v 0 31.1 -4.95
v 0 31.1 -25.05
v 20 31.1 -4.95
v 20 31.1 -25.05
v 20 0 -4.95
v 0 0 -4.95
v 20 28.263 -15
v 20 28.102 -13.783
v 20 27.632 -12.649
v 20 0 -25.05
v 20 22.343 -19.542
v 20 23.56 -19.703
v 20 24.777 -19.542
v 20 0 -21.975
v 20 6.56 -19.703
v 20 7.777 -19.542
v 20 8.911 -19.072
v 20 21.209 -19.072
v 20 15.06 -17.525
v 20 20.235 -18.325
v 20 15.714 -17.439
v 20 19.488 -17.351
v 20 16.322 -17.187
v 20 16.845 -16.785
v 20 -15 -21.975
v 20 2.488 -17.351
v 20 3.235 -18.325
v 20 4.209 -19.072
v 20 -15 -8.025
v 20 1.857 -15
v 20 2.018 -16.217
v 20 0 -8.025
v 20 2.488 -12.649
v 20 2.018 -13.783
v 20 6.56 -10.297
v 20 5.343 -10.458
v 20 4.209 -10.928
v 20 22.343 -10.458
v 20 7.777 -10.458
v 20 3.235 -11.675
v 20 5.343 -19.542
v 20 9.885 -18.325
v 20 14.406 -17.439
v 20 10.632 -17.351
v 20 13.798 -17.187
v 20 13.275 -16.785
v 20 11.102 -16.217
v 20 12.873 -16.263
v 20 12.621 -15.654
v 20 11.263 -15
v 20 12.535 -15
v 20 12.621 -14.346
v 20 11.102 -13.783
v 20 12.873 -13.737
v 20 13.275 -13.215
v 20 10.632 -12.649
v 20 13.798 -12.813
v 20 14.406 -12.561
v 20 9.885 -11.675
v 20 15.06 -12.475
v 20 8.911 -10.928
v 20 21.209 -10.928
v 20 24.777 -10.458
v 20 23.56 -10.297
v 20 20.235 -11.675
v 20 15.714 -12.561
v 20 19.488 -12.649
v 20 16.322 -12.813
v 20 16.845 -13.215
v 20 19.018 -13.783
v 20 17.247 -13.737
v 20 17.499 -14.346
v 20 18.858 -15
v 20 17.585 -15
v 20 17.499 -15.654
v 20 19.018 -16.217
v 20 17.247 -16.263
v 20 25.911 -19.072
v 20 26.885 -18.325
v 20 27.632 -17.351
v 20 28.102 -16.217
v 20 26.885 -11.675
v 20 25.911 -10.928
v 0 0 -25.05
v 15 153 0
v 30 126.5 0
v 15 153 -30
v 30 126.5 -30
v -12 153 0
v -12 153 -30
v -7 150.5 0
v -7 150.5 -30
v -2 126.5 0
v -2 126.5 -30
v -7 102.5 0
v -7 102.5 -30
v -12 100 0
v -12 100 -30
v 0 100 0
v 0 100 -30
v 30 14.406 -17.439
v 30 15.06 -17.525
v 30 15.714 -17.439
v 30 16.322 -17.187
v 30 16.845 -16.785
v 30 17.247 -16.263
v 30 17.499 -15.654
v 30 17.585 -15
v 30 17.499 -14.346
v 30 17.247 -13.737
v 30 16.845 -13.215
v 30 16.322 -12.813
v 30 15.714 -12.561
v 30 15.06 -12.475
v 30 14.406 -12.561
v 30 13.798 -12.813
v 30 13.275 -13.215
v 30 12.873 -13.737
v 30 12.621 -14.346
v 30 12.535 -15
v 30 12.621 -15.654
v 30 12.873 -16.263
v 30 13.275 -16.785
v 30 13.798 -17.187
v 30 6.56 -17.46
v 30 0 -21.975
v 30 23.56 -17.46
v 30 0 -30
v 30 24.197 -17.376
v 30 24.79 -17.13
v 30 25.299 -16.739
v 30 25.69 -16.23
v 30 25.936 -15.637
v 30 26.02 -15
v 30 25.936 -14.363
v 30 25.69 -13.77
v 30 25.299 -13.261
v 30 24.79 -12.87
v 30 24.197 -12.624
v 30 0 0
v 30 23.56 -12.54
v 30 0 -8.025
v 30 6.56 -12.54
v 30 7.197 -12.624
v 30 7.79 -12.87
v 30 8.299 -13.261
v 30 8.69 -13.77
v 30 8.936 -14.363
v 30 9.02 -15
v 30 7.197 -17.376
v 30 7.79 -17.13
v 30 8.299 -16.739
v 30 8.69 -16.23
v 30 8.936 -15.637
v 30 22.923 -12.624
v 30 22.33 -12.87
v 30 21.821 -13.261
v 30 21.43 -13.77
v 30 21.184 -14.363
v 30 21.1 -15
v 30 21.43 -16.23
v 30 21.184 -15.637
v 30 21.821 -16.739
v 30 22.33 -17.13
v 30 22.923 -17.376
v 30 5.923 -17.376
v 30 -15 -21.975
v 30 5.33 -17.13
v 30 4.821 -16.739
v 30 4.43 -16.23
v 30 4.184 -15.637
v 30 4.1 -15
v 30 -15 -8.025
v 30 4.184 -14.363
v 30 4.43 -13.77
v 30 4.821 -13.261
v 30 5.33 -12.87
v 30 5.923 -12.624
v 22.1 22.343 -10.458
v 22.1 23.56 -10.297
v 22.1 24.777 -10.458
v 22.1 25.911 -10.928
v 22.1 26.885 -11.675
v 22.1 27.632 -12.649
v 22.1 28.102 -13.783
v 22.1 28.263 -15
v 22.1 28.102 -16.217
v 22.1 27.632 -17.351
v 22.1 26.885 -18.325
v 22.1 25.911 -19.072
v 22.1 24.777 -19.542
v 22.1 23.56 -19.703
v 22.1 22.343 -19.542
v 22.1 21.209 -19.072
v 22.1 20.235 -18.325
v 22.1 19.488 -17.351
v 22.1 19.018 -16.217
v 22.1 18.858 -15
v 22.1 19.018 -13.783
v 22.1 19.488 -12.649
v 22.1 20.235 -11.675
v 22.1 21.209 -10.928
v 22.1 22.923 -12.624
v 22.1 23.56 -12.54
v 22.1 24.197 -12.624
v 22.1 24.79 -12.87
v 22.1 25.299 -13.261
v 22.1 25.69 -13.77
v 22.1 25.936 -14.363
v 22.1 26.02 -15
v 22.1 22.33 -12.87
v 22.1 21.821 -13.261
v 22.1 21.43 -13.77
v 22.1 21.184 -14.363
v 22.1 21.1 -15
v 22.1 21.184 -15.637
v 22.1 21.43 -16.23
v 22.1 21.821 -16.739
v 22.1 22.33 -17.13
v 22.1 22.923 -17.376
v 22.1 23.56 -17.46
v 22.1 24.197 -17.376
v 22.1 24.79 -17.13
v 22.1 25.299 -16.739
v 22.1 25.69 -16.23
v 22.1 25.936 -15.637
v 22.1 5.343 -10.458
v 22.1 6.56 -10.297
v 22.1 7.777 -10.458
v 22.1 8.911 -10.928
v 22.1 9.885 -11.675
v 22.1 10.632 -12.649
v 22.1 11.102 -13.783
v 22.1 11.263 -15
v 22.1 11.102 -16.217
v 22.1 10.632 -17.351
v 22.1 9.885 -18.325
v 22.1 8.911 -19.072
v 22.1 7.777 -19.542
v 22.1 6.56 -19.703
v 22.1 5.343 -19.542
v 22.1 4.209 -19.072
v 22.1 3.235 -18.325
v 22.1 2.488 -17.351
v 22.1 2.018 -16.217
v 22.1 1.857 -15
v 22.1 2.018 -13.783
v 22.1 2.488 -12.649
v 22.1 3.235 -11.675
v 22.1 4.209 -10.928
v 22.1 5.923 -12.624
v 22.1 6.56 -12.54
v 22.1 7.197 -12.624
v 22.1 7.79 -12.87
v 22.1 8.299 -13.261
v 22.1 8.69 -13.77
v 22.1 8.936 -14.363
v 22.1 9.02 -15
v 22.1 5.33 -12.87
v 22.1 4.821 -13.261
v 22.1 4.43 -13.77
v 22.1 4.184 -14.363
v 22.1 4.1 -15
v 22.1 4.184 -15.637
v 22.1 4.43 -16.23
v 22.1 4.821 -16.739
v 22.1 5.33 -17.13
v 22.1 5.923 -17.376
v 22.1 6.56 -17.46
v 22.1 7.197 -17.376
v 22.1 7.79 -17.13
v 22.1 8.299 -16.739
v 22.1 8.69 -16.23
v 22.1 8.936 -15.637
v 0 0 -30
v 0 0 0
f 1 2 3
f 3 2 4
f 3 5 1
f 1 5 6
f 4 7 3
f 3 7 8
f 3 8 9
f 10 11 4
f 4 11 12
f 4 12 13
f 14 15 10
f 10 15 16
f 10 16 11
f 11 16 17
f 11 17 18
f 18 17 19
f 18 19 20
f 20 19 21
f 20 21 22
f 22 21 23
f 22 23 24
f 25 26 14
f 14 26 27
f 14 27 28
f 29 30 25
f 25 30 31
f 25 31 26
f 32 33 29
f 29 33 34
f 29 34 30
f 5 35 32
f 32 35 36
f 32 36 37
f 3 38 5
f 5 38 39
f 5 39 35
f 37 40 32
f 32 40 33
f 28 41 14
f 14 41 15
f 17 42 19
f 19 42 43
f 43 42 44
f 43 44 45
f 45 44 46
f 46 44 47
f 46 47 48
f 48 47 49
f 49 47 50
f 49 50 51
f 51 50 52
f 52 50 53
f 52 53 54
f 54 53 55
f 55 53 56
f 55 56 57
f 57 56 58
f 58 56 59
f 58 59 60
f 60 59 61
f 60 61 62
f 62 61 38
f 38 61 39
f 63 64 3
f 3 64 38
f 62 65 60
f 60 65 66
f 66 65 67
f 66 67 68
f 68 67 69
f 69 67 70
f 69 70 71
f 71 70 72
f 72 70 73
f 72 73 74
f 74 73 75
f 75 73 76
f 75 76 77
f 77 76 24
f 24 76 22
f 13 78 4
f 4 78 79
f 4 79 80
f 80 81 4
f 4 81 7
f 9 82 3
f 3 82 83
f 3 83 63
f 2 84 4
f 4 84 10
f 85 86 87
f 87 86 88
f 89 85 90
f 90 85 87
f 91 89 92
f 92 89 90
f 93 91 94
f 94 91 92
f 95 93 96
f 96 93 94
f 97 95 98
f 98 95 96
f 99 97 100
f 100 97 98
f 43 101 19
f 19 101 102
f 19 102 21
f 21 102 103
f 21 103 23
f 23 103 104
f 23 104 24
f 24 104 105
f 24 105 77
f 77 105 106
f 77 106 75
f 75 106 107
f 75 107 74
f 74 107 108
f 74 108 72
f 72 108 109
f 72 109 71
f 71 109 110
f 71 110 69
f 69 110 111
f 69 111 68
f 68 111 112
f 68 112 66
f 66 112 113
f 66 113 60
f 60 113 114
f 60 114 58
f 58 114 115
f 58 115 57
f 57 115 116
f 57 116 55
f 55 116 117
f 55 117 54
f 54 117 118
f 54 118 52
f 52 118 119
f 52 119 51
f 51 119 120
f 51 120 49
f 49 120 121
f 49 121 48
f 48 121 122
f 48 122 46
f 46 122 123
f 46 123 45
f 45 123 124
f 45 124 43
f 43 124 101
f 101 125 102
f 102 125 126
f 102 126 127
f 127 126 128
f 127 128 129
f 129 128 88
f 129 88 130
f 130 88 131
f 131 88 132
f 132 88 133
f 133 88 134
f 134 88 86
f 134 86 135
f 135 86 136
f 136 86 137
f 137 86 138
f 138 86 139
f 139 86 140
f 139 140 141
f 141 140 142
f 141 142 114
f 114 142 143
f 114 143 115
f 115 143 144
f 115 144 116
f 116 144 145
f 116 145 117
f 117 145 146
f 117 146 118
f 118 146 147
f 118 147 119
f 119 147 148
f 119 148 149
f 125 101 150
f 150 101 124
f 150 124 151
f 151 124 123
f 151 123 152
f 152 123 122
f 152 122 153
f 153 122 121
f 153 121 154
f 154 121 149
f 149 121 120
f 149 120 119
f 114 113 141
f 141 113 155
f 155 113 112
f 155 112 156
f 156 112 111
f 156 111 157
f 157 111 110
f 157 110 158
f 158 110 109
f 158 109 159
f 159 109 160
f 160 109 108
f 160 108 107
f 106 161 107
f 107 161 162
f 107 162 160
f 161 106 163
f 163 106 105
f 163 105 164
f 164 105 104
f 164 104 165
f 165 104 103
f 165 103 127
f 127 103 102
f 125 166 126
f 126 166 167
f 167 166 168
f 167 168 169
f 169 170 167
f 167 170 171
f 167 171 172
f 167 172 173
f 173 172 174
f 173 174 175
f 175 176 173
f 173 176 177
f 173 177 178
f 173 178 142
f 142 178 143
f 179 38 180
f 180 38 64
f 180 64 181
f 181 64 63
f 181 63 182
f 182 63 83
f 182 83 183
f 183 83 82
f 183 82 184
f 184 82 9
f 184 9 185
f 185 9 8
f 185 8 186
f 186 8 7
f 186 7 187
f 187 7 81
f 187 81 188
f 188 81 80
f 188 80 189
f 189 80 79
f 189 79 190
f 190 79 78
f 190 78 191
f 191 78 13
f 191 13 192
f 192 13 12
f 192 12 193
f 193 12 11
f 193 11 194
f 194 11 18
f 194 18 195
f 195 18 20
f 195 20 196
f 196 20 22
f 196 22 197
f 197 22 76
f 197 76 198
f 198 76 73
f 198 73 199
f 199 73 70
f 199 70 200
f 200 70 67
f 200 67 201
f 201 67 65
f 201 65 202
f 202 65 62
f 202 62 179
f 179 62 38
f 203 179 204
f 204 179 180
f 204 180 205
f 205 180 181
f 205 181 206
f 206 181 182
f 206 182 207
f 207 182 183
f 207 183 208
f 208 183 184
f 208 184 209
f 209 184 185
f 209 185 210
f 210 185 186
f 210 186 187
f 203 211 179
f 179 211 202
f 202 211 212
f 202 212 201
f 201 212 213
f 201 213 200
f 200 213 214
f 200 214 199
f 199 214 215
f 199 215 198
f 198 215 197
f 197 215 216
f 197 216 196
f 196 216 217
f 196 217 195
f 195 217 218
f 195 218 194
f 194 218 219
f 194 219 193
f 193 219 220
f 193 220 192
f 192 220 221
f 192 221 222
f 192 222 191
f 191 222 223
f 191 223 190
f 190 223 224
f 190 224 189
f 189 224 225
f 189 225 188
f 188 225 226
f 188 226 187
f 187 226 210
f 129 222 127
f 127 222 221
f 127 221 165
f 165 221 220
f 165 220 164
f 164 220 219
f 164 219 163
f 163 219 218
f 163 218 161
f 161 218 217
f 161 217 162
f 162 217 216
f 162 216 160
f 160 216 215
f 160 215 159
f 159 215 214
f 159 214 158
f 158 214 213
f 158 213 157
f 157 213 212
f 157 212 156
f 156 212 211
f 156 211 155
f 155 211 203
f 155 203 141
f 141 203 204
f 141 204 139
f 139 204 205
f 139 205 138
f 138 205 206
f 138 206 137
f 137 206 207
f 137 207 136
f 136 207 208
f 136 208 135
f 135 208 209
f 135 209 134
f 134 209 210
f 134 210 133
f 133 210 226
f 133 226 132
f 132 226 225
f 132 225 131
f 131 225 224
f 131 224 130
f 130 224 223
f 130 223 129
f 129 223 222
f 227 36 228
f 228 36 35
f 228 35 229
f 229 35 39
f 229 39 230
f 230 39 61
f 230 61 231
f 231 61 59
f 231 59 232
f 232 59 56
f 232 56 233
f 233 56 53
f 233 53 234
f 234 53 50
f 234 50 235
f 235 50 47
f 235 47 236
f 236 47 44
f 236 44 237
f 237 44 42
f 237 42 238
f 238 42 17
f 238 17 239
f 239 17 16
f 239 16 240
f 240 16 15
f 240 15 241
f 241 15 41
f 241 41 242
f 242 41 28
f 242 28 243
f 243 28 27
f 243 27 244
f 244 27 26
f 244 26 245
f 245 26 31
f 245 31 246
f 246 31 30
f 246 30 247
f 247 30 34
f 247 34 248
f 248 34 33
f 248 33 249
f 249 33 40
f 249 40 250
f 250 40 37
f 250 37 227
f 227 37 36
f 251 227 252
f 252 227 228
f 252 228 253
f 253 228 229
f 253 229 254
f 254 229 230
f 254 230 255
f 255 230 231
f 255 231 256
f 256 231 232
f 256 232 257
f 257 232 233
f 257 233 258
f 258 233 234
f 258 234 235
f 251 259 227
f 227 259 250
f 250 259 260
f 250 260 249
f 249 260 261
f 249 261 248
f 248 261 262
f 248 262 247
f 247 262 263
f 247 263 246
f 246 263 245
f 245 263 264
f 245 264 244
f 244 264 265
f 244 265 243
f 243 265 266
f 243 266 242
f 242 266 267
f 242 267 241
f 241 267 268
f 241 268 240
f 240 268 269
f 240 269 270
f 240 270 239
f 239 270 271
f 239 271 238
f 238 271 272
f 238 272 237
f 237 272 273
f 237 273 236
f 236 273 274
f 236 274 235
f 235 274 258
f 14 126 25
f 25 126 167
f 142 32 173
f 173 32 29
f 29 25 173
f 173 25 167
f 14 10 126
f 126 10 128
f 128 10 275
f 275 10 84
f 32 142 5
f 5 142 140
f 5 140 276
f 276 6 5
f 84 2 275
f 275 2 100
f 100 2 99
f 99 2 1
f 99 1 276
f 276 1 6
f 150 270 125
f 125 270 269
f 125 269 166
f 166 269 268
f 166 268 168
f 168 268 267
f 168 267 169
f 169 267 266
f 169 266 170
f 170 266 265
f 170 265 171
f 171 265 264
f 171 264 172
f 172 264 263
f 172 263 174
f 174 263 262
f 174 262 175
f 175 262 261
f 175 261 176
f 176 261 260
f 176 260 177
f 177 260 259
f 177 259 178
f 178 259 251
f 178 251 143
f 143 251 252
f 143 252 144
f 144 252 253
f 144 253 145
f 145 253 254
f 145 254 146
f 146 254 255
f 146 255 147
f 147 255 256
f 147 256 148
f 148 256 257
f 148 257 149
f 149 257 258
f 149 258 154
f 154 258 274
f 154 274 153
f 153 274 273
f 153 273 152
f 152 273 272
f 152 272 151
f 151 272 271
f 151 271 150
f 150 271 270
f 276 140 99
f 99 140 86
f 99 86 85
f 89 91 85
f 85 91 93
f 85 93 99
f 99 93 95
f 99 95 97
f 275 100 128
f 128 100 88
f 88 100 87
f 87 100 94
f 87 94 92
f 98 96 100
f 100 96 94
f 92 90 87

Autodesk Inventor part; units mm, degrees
ref_plane "YZ Plane" through (0, 0, 0) normal (1, 0, 0) x (0, 1, 0)
ref_plane "XZ Plane" through (0, 0, 0) normal (0, 1, 0) x (-1, 0, 0)
ref_plane "XY Plane" through (0, 0, 0) normal (0, 0, 1) x (1, 0, 0)
sketch "Sketch1" plane through (0, 0, 0) normal (0, 0, 1) x (1, 0, 0)
  line L0 (0, 0) -> (25, 0)
  line L1 (25, 0) -> (25, 40)
  line L2 (25, 40) -> (0, 40)
  line L3 (0, 40) -> (0, 0)
  dimension "d1" = 25
  dimension "d2" = 40
  dimension "d3" = 25
extrude "Extrusion1" add sketch "Sketch1" against normal blind 30
sketch "Sketch2" plane through (25, 0, 0) normal (1, 0, 0) x (0, 0, -1)
  line L0 (0, 0) -> (30, 0) projected
  circle A0 centre (15, 6.56) radius 2.46
extrude "Extrusion2" cut sketch "Sketch2" against normal blind 30
sketch "Sketch3" plane through (0, 0, 0) normal (-1, 0, 0) x (0, 0, 1)
  line L0 (0, 0) -> (-30, 0) projected
  line L1 (-25.05, 0) -> (-4.95, 0)
  line L2 (-4.95, 0) -> (-4.95, 33.12)
  line L3 (-4.95, 33.12) -> (-25.05, 33.12)
  line L4 (-25.05, 33.12) -> (-25.05, 0)
  dimension "d11" = 20.1
extrude "Extrusion3" cut sketch "Sketch3" against normal blind 20
sketch "Sketch4" plane through (0, 0, 0) normal (0, -1, 0) x (1, 0, 0)
  line L0 (20, -4.95) -> (20, -25.05) projected
  line L1 (20, -15) -> (25, -15)
  line L2 (25, 0) -> (25, -30) projected
  line L3 (20, -8.025) -> (25, -8.025)
  line L4 (25, -8.025) -> (25, -21.975)
  line L5 (25, -21.975) -> (20, -21.975)
  line L6 (20, -21.975) -> (20, -8.025)
  line L7 (20, -8.025) -> (25, -21.975) construction
  line L8 (25, -8.025) -> (20, -21.975) construction
  line L9 (25, -12.54) -> (25, -17.46) projected
  point P0 (0, 0)
  point P1 (22.5, -15)
  dimension "d14" = 13.95
extrude "Extrusion4" add sketch "Sketch4" along normal blind 15
sketch "Sketch5" plane through (20, 0, 0) normal (-1, 0, 0) x (0, 0, 1)
  circle A0 centre (-15, 6.56) radius 2.46 projected
  circle A1 centre (-15, 6.56) radius 4.7025
  circle A2 centre (-15, 6.56) radius 2.46 projected
  circle A3 centre (-15, 6.56) radius 2.46
  point P0 (0, 0)
  dimension "d17" = 9.405
extrude "Extrusion5" cut sketch "Sketch5" against normal blind 2.1
sketch "Sketch6" plane through (25, 0, 0) normal (1, 0, 0) x (0, 0, -1)
  circle A0 centre (15, 6.56) radius 4.7025 projected
  line L0 (15, 6.56) -> (15, 23.56)
  circle A1 centre (15, 23.56) radius 2.46
  point P0 (0, 0)
  dimension "d20" = 17
  dimension "d21" = 4.92
extrude "Extrusion6" cut sketch "Sketch6" against normal blind 10 contours A1
sketch "Sketch7" plane through (20, 0, 0) normal (-1, 0, 0) x (0, 0, 1)
  circle A0 centre (-15, 23.56) radius 2.46 projected
  circle A1 centre (-15, 23.56) radius 4.7025
  point P0 (0, 0)
  dimension "d24" = 9.405
extrude "Extrusion7" cut sketch "Sketch7" against normal blind 2.1
sketch "Sketch9" plane through (25, 0, 0) normal (1, 0, 0) x (0, 0, -1)
  circle A0 centre (15, 6.56) radius 2.46 projected
  circle A1 centre (15, 6.56) radius 2.46
  circle A2 centre (15, 23.56) radius 2.46 projected
  circle A3 centre (15, 23.56) radius 2.46
  line L0 (30, 40) -> (30, 0) projected
  line L1 (30, 0) -> (30, 40)
  line L2 (30, 40) -> (0, 40)
  line L3 (0, 40) -> (0, 0)
  line L4 (0, 0) -> (8.025, 0) projected
  line L5 (21.975, 0) -> (21.975, -15)
  line L6 (21.975, -15) -> (8.025, -15)
  line L7 (8.025, -15) -> (8.025, 0)
  line L8 (0, 0) -> (8.025, 0)
  line L9 (21.975, 0) -> (30, 0)
extrude "Extrusion8" add sketch "Sketch9" along normal blind 5
sketch "Sketch10" plane through (0, 40, 0) normal (0, 1, 0) x (1, 0, 0)
  line L0 (0, 30) -> (30, 30) projected
  line L1 (30, 0) -> (0, 0) projected
  line L2 (0, 30) -> (30, 30)
  line L3 (30, 30) -> (30, 0)
  line L4 (30, 0) -> (0, 0)
  line L5 (0, 0) -> (0, 30)
extrude "Extrusion9" add sketch "Sketch10" along normal blind 30
sketch "Sketch12" plane through (30, 0, 0) normal (1, 0, 0) x (0, 0, -1)
  circle A0 centre (15, 6.56) radius 2.46 projected
  line L0 (15, 6.56) -> (15, 15.06)
  circle A1 centre (15, 15.06) radius 2.525
  point P0 (0, 0)
  dimension "d31" = 8.5
  dimension "d33" = 5.05
extrude "Extrusion10" cut sketch "Sketch12" against normal blind 30 contours A1
sketch "Sketch14" plane through (0, 0, 0) normal (0, 0, 1) x (1, 0, 0)
  line L0 (30, 70) -> (0, 70) projected
  line L1 (0, 70) -> (0, 85)
  line L2 (30, 0) -> (30, 70) projected
  line L3 (30, 122.5) -> (30, 70)
  line L4 (30, 105) -> (30, 100)
  line L5 (-12, 153) -> (15, 153)
  line L6 (-7, 150.5) -> (-12, 153)
  line L7 (-7, 102.5) -> (-12, 100)
  line L8 (-7, 102.5) -> (-2, 126.5)
  line L9 (-2, 126.5) -> (-7, 150.5)
  line L10 (30, 126.5) -> (15, 153)
  line L11 (30, 122.5) -> (30, 126.5)
  line L12 (0, 85) -> (0, 100)
  line L13 (0, 100) -> (-12, 100)
  point P0 (0, 0)
  dimension "d90" = 12
extrude "Extrusion12" add sketch "Sketch14" against normal blind 30
sketch "Sketch15" plane through (0, 0, -25.05) normal (-1, 0, 0) x (0, 0, 1)
  line L0 (0, 33.12) -> (20.1, 33.12) projected
  line L1 (20.1, 33.12) -> (20.1, 0) projected
  line L2 (0, 33.12) -> (20.1, 33.12)
  line L3 (20.1, 33.12) -> (20.1, 31.1)
  line L4 (20.1, 31.1) -> (0, 31.1)
  line L5 (0, 31.1) -> (0, 33.12)
  point P0 (25.05, 0)
  dimension "d57" = 2.02
extrude "Extrusion13" add sketch "Sketch15" against normal blind 20
properties part number "rec_a_48mm_x_30mm"
